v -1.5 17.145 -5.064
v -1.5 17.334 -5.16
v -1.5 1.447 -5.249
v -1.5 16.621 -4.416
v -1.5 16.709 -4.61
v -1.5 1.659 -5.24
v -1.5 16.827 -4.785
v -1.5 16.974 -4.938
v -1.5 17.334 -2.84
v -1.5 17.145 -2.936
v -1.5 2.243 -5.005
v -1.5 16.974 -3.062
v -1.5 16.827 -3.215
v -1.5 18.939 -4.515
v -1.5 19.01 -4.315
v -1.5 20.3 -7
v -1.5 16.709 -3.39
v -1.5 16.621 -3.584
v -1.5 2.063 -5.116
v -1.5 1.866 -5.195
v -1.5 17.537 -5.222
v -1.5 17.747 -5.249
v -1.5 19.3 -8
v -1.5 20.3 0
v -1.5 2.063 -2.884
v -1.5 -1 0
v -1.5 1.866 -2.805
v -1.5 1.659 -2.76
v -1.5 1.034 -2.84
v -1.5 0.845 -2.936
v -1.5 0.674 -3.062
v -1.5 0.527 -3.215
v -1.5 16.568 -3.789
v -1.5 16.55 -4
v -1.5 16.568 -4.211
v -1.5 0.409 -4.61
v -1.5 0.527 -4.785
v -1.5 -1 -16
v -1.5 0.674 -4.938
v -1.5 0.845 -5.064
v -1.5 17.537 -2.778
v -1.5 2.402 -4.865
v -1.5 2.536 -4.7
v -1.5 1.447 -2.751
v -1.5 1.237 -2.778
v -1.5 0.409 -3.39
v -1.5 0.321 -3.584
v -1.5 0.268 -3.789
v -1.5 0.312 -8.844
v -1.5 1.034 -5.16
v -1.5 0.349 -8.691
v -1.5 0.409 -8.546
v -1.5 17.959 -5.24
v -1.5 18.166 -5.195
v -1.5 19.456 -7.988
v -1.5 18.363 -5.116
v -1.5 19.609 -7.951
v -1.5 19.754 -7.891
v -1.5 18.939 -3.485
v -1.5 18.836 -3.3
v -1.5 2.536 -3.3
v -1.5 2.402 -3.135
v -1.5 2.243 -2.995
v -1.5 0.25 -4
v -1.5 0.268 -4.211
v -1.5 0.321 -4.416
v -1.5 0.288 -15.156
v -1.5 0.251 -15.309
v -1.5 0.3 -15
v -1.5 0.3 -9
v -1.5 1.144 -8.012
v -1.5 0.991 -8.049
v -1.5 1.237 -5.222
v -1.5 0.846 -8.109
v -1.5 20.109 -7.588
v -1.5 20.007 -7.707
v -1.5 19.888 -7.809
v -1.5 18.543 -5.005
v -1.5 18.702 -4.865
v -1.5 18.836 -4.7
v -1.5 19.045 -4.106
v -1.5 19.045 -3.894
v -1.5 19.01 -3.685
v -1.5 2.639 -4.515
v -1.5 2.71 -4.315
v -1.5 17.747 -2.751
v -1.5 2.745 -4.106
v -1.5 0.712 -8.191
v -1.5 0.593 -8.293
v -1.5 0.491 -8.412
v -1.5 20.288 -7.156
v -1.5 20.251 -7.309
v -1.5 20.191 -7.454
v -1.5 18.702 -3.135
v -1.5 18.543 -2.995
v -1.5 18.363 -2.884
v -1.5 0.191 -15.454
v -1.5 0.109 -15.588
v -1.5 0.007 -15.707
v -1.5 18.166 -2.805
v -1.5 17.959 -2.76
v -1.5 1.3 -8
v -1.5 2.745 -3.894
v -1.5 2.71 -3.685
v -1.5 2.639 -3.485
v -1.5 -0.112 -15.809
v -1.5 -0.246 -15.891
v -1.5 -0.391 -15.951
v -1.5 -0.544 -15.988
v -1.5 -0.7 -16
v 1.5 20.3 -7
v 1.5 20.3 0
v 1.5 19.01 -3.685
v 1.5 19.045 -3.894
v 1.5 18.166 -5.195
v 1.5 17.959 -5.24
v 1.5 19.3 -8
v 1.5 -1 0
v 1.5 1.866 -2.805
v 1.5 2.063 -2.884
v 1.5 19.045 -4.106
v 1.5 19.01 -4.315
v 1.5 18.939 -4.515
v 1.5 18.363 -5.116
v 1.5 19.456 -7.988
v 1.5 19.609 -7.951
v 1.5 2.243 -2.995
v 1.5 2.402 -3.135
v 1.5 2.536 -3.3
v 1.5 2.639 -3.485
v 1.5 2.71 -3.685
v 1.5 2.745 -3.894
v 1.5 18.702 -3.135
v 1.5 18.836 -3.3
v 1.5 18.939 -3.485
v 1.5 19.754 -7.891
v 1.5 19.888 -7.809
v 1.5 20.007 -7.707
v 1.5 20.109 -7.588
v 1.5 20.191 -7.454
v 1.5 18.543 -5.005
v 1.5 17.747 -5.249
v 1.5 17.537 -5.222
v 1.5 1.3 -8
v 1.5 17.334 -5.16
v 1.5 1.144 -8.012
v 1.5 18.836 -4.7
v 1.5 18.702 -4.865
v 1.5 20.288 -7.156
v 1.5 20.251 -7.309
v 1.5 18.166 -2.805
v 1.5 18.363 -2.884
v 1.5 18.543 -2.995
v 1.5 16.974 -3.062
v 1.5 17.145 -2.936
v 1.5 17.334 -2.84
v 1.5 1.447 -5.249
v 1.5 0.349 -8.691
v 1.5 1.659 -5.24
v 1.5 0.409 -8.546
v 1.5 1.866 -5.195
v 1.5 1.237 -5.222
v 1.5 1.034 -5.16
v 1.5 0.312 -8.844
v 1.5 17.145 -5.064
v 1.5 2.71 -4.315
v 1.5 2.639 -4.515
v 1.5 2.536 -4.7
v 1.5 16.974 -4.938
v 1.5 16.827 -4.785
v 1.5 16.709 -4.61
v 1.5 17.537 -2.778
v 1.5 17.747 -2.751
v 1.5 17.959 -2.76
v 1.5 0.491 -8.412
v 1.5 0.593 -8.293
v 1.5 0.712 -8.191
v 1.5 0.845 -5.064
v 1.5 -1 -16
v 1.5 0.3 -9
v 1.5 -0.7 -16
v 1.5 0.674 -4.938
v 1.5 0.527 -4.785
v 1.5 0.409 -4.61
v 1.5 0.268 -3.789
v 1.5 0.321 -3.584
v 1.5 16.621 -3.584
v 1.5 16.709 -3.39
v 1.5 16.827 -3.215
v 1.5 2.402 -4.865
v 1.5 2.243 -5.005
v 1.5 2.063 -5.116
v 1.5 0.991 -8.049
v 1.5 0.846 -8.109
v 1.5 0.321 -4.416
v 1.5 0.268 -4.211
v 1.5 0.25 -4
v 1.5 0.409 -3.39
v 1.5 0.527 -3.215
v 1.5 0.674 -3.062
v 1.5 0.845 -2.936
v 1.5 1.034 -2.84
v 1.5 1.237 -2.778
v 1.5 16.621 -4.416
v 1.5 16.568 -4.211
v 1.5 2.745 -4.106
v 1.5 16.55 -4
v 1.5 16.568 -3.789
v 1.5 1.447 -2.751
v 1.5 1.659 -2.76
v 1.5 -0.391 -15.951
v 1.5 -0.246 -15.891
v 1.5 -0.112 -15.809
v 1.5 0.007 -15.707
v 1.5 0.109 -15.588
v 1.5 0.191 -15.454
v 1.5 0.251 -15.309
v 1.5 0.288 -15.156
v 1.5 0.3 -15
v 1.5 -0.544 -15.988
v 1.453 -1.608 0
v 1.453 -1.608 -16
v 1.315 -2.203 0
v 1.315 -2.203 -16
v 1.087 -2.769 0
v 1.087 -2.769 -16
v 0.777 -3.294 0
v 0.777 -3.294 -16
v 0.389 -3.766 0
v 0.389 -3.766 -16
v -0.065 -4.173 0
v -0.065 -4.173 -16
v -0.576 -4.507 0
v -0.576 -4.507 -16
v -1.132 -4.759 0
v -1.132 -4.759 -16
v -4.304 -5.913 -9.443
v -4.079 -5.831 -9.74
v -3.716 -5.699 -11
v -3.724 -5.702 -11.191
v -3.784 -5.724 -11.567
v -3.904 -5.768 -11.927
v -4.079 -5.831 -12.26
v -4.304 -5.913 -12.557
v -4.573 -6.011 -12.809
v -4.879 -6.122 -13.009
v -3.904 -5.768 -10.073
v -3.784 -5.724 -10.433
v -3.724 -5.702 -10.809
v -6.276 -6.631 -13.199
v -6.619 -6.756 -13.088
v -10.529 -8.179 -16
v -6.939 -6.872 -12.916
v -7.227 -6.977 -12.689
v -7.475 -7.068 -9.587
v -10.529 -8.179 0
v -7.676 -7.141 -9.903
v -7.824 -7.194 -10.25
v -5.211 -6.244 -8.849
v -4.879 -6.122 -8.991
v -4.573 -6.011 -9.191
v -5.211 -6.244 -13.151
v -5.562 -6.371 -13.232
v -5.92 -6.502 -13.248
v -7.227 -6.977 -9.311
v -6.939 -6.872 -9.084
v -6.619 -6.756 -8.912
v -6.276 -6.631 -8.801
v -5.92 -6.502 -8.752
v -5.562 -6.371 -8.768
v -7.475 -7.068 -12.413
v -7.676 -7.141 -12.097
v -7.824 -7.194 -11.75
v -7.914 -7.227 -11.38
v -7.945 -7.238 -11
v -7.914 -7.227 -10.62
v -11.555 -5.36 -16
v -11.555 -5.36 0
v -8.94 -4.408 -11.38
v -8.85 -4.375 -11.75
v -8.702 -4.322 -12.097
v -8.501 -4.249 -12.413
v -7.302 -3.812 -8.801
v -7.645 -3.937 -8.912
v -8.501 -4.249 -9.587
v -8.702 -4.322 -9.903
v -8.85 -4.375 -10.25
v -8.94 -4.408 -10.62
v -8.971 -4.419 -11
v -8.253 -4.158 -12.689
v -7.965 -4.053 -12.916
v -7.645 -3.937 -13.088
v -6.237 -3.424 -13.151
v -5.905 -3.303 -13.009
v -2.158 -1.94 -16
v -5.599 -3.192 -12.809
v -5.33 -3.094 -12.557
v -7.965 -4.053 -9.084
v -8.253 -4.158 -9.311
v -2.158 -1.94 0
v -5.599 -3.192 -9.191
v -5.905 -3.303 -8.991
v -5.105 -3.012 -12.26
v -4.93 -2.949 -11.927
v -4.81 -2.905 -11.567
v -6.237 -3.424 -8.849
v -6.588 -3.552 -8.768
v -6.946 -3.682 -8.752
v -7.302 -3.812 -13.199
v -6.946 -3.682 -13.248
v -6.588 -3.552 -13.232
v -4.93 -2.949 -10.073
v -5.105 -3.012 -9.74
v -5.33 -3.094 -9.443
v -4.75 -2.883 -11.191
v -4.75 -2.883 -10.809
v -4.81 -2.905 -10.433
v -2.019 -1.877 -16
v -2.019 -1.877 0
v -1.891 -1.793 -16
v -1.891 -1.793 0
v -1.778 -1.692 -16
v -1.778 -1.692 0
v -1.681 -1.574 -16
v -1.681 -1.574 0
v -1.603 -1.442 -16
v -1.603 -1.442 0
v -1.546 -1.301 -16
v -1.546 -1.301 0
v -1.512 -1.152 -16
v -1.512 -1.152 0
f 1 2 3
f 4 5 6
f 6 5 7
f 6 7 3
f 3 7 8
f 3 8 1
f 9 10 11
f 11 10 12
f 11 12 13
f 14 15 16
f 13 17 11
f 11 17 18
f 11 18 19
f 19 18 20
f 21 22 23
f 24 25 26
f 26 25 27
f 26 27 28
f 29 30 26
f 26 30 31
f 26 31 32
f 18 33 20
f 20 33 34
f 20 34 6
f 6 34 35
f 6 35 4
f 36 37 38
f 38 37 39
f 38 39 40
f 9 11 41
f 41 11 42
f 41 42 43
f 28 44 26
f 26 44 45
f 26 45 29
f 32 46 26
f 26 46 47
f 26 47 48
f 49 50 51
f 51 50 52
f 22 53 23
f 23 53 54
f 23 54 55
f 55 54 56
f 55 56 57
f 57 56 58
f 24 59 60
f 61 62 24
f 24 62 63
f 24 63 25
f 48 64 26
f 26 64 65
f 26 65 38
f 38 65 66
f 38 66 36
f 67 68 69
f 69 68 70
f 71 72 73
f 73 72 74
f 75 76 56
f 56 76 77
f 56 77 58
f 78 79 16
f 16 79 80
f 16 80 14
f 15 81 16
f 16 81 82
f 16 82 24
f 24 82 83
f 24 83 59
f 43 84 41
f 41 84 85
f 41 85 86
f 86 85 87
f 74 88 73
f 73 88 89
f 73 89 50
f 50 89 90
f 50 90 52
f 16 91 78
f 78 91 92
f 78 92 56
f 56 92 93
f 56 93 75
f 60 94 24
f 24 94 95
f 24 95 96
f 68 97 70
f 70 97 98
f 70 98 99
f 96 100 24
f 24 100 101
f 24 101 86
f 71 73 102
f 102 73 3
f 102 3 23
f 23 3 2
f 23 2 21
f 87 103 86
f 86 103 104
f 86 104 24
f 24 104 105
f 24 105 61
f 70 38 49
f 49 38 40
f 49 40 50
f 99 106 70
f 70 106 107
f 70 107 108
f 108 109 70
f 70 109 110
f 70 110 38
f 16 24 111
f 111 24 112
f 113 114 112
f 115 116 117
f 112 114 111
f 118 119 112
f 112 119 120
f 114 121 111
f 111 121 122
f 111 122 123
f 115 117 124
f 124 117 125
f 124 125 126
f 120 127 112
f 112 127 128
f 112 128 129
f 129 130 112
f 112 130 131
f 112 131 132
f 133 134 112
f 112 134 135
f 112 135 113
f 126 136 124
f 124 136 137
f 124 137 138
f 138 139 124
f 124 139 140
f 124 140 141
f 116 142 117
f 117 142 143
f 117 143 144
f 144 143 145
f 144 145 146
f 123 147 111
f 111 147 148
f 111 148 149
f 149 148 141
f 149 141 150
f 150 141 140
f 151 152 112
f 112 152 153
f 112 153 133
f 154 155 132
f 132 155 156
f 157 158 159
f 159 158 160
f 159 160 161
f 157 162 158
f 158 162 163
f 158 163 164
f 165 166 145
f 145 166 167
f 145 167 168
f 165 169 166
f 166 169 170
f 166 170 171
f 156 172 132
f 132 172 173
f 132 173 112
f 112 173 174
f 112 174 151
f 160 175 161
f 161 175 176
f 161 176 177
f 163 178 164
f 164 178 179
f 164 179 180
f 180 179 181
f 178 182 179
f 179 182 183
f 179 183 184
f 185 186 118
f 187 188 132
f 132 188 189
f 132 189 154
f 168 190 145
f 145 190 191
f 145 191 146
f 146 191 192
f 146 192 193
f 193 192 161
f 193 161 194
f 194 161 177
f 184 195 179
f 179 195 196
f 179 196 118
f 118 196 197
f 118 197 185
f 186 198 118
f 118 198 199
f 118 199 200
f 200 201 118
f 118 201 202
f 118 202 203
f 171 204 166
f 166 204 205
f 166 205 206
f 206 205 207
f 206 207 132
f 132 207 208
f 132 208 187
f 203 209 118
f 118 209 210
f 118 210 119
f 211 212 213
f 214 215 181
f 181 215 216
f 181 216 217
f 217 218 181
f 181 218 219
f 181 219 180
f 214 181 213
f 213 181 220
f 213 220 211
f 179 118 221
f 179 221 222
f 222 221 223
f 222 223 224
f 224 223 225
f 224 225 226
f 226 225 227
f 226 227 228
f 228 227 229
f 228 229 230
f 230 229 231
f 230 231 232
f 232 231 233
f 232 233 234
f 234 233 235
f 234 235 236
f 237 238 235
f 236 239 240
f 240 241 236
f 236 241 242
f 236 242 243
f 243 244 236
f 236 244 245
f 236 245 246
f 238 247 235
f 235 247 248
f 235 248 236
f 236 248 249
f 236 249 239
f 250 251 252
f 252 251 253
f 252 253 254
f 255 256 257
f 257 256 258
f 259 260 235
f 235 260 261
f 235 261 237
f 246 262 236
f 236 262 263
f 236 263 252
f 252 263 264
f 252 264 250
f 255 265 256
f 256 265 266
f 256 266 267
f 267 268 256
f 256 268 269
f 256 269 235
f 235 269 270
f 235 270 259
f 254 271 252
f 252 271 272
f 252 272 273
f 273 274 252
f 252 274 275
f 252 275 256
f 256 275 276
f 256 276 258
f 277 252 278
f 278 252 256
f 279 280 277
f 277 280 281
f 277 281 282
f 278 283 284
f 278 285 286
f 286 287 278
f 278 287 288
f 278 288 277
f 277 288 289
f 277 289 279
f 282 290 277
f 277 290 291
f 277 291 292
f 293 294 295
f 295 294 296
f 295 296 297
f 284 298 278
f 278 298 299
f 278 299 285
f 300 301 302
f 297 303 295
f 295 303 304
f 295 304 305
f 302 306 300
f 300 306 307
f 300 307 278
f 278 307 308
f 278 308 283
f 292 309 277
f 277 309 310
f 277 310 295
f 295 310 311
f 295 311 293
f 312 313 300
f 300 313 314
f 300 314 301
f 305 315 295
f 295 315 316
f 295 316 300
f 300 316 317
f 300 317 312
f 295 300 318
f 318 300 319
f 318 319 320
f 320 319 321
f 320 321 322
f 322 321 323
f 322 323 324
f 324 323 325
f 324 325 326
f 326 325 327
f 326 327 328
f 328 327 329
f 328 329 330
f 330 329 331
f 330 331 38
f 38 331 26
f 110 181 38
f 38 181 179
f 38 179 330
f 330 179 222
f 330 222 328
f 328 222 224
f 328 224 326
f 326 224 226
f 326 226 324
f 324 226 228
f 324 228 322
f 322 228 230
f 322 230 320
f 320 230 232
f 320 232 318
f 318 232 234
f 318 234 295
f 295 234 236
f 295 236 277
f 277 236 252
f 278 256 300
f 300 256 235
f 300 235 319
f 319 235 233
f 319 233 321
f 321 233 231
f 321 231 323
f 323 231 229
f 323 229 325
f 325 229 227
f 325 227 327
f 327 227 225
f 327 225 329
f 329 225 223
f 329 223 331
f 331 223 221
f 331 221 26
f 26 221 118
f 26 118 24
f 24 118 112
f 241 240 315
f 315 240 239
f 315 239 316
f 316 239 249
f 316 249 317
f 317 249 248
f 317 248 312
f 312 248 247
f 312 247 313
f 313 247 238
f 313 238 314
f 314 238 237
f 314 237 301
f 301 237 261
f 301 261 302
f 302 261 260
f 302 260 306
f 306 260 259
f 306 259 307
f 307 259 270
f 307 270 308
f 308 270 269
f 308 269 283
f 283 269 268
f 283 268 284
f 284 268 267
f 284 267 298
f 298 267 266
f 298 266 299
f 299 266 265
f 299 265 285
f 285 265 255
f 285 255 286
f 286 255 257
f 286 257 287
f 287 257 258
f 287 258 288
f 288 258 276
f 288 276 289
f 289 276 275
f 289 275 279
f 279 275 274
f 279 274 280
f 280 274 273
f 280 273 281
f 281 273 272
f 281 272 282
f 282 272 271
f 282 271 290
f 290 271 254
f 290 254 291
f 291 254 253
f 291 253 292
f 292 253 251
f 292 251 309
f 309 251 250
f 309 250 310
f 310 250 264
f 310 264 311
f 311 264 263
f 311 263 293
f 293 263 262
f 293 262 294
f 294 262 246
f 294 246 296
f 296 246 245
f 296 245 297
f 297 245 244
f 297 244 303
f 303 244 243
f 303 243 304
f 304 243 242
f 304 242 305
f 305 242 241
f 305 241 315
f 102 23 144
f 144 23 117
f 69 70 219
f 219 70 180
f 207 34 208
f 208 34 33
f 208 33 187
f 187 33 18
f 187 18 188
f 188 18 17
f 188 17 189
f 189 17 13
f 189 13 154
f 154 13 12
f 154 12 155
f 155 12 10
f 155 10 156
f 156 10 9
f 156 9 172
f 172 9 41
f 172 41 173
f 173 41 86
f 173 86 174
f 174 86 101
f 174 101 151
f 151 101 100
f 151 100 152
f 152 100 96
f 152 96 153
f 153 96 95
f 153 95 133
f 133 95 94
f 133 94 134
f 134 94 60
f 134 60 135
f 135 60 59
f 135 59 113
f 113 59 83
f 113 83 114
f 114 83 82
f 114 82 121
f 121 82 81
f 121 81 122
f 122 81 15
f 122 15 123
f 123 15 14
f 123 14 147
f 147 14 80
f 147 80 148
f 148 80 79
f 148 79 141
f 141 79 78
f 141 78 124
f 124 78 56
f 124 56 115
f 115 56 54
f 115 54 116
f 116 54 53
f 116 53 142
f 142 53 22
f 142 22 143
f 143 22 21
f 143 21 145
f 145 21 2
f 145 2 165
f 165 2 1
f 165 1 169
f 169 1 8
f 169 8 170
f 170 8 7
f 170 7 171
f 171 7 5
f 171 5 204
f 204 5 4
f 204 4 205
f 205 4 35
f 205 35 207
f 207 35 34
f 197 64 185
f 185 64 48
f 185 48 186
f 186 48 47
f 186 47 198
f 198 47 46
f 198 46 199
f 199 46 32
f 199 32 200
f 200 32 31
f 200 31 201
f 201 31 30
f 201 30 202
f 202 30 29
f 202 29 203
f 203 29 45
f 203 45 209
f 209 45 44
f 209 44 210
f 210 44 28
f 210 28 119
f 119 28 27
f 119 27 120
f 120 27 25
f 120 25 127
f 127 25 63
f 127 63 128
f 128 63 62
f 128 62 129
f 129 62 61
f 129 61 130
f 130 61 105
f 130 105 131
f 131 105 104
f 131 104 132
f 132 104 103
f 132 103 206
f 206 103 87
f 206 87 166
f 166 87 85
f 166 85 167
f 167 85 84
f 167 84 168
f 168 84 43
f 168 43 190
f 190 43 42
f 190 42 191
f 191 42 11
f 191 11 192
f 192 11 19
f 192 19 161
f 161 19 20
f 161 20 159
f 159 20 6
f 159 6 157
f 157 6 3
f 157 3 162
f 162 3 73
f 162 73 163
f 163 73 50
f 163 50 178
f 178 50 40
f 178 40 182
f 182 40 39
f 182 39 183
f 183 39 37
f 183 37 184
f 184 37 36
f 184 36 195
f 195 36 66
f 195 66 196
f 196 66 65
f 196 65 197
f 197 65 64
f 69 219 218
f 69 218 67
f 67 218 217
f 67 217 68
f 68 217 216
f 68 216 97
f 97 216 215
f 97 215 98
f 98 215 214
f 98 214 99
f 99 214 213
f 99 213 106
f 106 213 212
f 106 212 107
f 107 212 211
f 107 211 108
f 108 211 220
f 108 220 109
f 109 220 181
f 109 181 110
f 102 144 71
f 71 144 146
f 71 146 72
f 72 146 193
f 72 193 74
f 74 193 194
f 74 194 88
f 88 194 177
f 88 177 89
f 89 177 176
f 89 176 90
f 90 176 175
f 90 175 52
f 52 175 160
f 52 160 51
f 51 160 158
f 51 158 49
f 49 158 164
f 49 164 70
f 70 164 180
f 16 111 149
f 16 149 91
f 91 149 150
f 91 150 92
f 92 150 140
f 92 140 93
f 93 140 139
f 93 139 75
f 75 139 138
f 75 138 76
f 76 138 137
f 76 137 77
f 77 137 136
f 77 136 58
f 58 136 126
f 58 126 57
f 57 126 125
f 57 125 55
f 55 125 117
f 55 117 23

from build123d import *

# Parameters (mm, degrees)
BOSS_EXTRUDE2_DEPTH = 16
SKETCH7_R           = 2.25
CUT_EXTRUDE4_DEPTH  = 30.201645329
SKETCH6_R           = 1.25
SKETCH6_W           = 8
SKETCH6_H           = 20
CUT_EXTRUDE5_DEPTH  = 28.734295303
FILLET2_R           = 1


with BuildPart() as part:
    # Sketch2 → Boss-Extrude2 (new body)
    with BuildSketch(Plane.XY):
        with BuildLine():
            Line((-2.157979857, -1.939692621), (-11.554906065, -5.359894054))
            Line((-11.554906065, -5.359894054), (-10.528845635, -8.178971916))
            Line((-10.528845635, -8.178971916), (-1.131919427, -4.758770483))
            ThreePointArc((-1.131919427, -4.758770483), (0.776608177, -3.294305745), (1.5, -1))
            Line((1.5, -1), (1.5, 20.3))
            Line((1.5, 20.3), (-1.5, 20.3))
            Line((-1.5, 20.3), (-1.5, -1))
            ThreePointArc((-1.5, -1), (-1.680847956, -1.573576436), (-2.157979857, -1.939692621))
        make_face()
    extrude(amount=-BOSS_EXTRUDE2_DEPTH)

    # Sketch7 → Cut-Extrude4 (cut, through all)
    with BuildSketch(Plane(origin=(0.370969502, -1.01923033, 0), x_dir=(0.9396926207859104, 0.34202014332566305, 0), z_dir=(-0.3420201433256631, 0.9396926207859105, 0))):
        with Locations(Location((-7.691251695, 11, 0), (0, 0, 180))):
            Circle(SKETCH7_R)
    extrude(amount=-CUT_EXTRUDE4_DEPTH, mode=Mode.SUBTRACT)

    # Sketch6 → Cut-Extrude5 (cut, through all)
    with BuildSketch(Plane.ZY.offset(1.5)):
        with Locations(Location((-4, 17.8, 0), (0, 0, 270))):
            Circle(SKETCH6_R)
        with Locations(Location((-4, 1.5, 0), (0, 0, 270))):
            Circle(SKETCH6_R)
        with Locations((-12, 10.3)):
            Rectangle(SKETCH6_W, SKETCH6_H)
    extrude(amount=-CUT_EXTRUDE5_DEPTH, mode=Mode.SUBTRACT)

    # Fillet2
    fillet2_edges = [part.edges().sort_by_distance(p)[0] for p in [
        (0, 0.3, -16),
        (0, 20.3, -8),
        (0, 0.3, -8),
    ]]
    fillet(fillet2_edges, radius=FILLET2_R)


solid = part.part
